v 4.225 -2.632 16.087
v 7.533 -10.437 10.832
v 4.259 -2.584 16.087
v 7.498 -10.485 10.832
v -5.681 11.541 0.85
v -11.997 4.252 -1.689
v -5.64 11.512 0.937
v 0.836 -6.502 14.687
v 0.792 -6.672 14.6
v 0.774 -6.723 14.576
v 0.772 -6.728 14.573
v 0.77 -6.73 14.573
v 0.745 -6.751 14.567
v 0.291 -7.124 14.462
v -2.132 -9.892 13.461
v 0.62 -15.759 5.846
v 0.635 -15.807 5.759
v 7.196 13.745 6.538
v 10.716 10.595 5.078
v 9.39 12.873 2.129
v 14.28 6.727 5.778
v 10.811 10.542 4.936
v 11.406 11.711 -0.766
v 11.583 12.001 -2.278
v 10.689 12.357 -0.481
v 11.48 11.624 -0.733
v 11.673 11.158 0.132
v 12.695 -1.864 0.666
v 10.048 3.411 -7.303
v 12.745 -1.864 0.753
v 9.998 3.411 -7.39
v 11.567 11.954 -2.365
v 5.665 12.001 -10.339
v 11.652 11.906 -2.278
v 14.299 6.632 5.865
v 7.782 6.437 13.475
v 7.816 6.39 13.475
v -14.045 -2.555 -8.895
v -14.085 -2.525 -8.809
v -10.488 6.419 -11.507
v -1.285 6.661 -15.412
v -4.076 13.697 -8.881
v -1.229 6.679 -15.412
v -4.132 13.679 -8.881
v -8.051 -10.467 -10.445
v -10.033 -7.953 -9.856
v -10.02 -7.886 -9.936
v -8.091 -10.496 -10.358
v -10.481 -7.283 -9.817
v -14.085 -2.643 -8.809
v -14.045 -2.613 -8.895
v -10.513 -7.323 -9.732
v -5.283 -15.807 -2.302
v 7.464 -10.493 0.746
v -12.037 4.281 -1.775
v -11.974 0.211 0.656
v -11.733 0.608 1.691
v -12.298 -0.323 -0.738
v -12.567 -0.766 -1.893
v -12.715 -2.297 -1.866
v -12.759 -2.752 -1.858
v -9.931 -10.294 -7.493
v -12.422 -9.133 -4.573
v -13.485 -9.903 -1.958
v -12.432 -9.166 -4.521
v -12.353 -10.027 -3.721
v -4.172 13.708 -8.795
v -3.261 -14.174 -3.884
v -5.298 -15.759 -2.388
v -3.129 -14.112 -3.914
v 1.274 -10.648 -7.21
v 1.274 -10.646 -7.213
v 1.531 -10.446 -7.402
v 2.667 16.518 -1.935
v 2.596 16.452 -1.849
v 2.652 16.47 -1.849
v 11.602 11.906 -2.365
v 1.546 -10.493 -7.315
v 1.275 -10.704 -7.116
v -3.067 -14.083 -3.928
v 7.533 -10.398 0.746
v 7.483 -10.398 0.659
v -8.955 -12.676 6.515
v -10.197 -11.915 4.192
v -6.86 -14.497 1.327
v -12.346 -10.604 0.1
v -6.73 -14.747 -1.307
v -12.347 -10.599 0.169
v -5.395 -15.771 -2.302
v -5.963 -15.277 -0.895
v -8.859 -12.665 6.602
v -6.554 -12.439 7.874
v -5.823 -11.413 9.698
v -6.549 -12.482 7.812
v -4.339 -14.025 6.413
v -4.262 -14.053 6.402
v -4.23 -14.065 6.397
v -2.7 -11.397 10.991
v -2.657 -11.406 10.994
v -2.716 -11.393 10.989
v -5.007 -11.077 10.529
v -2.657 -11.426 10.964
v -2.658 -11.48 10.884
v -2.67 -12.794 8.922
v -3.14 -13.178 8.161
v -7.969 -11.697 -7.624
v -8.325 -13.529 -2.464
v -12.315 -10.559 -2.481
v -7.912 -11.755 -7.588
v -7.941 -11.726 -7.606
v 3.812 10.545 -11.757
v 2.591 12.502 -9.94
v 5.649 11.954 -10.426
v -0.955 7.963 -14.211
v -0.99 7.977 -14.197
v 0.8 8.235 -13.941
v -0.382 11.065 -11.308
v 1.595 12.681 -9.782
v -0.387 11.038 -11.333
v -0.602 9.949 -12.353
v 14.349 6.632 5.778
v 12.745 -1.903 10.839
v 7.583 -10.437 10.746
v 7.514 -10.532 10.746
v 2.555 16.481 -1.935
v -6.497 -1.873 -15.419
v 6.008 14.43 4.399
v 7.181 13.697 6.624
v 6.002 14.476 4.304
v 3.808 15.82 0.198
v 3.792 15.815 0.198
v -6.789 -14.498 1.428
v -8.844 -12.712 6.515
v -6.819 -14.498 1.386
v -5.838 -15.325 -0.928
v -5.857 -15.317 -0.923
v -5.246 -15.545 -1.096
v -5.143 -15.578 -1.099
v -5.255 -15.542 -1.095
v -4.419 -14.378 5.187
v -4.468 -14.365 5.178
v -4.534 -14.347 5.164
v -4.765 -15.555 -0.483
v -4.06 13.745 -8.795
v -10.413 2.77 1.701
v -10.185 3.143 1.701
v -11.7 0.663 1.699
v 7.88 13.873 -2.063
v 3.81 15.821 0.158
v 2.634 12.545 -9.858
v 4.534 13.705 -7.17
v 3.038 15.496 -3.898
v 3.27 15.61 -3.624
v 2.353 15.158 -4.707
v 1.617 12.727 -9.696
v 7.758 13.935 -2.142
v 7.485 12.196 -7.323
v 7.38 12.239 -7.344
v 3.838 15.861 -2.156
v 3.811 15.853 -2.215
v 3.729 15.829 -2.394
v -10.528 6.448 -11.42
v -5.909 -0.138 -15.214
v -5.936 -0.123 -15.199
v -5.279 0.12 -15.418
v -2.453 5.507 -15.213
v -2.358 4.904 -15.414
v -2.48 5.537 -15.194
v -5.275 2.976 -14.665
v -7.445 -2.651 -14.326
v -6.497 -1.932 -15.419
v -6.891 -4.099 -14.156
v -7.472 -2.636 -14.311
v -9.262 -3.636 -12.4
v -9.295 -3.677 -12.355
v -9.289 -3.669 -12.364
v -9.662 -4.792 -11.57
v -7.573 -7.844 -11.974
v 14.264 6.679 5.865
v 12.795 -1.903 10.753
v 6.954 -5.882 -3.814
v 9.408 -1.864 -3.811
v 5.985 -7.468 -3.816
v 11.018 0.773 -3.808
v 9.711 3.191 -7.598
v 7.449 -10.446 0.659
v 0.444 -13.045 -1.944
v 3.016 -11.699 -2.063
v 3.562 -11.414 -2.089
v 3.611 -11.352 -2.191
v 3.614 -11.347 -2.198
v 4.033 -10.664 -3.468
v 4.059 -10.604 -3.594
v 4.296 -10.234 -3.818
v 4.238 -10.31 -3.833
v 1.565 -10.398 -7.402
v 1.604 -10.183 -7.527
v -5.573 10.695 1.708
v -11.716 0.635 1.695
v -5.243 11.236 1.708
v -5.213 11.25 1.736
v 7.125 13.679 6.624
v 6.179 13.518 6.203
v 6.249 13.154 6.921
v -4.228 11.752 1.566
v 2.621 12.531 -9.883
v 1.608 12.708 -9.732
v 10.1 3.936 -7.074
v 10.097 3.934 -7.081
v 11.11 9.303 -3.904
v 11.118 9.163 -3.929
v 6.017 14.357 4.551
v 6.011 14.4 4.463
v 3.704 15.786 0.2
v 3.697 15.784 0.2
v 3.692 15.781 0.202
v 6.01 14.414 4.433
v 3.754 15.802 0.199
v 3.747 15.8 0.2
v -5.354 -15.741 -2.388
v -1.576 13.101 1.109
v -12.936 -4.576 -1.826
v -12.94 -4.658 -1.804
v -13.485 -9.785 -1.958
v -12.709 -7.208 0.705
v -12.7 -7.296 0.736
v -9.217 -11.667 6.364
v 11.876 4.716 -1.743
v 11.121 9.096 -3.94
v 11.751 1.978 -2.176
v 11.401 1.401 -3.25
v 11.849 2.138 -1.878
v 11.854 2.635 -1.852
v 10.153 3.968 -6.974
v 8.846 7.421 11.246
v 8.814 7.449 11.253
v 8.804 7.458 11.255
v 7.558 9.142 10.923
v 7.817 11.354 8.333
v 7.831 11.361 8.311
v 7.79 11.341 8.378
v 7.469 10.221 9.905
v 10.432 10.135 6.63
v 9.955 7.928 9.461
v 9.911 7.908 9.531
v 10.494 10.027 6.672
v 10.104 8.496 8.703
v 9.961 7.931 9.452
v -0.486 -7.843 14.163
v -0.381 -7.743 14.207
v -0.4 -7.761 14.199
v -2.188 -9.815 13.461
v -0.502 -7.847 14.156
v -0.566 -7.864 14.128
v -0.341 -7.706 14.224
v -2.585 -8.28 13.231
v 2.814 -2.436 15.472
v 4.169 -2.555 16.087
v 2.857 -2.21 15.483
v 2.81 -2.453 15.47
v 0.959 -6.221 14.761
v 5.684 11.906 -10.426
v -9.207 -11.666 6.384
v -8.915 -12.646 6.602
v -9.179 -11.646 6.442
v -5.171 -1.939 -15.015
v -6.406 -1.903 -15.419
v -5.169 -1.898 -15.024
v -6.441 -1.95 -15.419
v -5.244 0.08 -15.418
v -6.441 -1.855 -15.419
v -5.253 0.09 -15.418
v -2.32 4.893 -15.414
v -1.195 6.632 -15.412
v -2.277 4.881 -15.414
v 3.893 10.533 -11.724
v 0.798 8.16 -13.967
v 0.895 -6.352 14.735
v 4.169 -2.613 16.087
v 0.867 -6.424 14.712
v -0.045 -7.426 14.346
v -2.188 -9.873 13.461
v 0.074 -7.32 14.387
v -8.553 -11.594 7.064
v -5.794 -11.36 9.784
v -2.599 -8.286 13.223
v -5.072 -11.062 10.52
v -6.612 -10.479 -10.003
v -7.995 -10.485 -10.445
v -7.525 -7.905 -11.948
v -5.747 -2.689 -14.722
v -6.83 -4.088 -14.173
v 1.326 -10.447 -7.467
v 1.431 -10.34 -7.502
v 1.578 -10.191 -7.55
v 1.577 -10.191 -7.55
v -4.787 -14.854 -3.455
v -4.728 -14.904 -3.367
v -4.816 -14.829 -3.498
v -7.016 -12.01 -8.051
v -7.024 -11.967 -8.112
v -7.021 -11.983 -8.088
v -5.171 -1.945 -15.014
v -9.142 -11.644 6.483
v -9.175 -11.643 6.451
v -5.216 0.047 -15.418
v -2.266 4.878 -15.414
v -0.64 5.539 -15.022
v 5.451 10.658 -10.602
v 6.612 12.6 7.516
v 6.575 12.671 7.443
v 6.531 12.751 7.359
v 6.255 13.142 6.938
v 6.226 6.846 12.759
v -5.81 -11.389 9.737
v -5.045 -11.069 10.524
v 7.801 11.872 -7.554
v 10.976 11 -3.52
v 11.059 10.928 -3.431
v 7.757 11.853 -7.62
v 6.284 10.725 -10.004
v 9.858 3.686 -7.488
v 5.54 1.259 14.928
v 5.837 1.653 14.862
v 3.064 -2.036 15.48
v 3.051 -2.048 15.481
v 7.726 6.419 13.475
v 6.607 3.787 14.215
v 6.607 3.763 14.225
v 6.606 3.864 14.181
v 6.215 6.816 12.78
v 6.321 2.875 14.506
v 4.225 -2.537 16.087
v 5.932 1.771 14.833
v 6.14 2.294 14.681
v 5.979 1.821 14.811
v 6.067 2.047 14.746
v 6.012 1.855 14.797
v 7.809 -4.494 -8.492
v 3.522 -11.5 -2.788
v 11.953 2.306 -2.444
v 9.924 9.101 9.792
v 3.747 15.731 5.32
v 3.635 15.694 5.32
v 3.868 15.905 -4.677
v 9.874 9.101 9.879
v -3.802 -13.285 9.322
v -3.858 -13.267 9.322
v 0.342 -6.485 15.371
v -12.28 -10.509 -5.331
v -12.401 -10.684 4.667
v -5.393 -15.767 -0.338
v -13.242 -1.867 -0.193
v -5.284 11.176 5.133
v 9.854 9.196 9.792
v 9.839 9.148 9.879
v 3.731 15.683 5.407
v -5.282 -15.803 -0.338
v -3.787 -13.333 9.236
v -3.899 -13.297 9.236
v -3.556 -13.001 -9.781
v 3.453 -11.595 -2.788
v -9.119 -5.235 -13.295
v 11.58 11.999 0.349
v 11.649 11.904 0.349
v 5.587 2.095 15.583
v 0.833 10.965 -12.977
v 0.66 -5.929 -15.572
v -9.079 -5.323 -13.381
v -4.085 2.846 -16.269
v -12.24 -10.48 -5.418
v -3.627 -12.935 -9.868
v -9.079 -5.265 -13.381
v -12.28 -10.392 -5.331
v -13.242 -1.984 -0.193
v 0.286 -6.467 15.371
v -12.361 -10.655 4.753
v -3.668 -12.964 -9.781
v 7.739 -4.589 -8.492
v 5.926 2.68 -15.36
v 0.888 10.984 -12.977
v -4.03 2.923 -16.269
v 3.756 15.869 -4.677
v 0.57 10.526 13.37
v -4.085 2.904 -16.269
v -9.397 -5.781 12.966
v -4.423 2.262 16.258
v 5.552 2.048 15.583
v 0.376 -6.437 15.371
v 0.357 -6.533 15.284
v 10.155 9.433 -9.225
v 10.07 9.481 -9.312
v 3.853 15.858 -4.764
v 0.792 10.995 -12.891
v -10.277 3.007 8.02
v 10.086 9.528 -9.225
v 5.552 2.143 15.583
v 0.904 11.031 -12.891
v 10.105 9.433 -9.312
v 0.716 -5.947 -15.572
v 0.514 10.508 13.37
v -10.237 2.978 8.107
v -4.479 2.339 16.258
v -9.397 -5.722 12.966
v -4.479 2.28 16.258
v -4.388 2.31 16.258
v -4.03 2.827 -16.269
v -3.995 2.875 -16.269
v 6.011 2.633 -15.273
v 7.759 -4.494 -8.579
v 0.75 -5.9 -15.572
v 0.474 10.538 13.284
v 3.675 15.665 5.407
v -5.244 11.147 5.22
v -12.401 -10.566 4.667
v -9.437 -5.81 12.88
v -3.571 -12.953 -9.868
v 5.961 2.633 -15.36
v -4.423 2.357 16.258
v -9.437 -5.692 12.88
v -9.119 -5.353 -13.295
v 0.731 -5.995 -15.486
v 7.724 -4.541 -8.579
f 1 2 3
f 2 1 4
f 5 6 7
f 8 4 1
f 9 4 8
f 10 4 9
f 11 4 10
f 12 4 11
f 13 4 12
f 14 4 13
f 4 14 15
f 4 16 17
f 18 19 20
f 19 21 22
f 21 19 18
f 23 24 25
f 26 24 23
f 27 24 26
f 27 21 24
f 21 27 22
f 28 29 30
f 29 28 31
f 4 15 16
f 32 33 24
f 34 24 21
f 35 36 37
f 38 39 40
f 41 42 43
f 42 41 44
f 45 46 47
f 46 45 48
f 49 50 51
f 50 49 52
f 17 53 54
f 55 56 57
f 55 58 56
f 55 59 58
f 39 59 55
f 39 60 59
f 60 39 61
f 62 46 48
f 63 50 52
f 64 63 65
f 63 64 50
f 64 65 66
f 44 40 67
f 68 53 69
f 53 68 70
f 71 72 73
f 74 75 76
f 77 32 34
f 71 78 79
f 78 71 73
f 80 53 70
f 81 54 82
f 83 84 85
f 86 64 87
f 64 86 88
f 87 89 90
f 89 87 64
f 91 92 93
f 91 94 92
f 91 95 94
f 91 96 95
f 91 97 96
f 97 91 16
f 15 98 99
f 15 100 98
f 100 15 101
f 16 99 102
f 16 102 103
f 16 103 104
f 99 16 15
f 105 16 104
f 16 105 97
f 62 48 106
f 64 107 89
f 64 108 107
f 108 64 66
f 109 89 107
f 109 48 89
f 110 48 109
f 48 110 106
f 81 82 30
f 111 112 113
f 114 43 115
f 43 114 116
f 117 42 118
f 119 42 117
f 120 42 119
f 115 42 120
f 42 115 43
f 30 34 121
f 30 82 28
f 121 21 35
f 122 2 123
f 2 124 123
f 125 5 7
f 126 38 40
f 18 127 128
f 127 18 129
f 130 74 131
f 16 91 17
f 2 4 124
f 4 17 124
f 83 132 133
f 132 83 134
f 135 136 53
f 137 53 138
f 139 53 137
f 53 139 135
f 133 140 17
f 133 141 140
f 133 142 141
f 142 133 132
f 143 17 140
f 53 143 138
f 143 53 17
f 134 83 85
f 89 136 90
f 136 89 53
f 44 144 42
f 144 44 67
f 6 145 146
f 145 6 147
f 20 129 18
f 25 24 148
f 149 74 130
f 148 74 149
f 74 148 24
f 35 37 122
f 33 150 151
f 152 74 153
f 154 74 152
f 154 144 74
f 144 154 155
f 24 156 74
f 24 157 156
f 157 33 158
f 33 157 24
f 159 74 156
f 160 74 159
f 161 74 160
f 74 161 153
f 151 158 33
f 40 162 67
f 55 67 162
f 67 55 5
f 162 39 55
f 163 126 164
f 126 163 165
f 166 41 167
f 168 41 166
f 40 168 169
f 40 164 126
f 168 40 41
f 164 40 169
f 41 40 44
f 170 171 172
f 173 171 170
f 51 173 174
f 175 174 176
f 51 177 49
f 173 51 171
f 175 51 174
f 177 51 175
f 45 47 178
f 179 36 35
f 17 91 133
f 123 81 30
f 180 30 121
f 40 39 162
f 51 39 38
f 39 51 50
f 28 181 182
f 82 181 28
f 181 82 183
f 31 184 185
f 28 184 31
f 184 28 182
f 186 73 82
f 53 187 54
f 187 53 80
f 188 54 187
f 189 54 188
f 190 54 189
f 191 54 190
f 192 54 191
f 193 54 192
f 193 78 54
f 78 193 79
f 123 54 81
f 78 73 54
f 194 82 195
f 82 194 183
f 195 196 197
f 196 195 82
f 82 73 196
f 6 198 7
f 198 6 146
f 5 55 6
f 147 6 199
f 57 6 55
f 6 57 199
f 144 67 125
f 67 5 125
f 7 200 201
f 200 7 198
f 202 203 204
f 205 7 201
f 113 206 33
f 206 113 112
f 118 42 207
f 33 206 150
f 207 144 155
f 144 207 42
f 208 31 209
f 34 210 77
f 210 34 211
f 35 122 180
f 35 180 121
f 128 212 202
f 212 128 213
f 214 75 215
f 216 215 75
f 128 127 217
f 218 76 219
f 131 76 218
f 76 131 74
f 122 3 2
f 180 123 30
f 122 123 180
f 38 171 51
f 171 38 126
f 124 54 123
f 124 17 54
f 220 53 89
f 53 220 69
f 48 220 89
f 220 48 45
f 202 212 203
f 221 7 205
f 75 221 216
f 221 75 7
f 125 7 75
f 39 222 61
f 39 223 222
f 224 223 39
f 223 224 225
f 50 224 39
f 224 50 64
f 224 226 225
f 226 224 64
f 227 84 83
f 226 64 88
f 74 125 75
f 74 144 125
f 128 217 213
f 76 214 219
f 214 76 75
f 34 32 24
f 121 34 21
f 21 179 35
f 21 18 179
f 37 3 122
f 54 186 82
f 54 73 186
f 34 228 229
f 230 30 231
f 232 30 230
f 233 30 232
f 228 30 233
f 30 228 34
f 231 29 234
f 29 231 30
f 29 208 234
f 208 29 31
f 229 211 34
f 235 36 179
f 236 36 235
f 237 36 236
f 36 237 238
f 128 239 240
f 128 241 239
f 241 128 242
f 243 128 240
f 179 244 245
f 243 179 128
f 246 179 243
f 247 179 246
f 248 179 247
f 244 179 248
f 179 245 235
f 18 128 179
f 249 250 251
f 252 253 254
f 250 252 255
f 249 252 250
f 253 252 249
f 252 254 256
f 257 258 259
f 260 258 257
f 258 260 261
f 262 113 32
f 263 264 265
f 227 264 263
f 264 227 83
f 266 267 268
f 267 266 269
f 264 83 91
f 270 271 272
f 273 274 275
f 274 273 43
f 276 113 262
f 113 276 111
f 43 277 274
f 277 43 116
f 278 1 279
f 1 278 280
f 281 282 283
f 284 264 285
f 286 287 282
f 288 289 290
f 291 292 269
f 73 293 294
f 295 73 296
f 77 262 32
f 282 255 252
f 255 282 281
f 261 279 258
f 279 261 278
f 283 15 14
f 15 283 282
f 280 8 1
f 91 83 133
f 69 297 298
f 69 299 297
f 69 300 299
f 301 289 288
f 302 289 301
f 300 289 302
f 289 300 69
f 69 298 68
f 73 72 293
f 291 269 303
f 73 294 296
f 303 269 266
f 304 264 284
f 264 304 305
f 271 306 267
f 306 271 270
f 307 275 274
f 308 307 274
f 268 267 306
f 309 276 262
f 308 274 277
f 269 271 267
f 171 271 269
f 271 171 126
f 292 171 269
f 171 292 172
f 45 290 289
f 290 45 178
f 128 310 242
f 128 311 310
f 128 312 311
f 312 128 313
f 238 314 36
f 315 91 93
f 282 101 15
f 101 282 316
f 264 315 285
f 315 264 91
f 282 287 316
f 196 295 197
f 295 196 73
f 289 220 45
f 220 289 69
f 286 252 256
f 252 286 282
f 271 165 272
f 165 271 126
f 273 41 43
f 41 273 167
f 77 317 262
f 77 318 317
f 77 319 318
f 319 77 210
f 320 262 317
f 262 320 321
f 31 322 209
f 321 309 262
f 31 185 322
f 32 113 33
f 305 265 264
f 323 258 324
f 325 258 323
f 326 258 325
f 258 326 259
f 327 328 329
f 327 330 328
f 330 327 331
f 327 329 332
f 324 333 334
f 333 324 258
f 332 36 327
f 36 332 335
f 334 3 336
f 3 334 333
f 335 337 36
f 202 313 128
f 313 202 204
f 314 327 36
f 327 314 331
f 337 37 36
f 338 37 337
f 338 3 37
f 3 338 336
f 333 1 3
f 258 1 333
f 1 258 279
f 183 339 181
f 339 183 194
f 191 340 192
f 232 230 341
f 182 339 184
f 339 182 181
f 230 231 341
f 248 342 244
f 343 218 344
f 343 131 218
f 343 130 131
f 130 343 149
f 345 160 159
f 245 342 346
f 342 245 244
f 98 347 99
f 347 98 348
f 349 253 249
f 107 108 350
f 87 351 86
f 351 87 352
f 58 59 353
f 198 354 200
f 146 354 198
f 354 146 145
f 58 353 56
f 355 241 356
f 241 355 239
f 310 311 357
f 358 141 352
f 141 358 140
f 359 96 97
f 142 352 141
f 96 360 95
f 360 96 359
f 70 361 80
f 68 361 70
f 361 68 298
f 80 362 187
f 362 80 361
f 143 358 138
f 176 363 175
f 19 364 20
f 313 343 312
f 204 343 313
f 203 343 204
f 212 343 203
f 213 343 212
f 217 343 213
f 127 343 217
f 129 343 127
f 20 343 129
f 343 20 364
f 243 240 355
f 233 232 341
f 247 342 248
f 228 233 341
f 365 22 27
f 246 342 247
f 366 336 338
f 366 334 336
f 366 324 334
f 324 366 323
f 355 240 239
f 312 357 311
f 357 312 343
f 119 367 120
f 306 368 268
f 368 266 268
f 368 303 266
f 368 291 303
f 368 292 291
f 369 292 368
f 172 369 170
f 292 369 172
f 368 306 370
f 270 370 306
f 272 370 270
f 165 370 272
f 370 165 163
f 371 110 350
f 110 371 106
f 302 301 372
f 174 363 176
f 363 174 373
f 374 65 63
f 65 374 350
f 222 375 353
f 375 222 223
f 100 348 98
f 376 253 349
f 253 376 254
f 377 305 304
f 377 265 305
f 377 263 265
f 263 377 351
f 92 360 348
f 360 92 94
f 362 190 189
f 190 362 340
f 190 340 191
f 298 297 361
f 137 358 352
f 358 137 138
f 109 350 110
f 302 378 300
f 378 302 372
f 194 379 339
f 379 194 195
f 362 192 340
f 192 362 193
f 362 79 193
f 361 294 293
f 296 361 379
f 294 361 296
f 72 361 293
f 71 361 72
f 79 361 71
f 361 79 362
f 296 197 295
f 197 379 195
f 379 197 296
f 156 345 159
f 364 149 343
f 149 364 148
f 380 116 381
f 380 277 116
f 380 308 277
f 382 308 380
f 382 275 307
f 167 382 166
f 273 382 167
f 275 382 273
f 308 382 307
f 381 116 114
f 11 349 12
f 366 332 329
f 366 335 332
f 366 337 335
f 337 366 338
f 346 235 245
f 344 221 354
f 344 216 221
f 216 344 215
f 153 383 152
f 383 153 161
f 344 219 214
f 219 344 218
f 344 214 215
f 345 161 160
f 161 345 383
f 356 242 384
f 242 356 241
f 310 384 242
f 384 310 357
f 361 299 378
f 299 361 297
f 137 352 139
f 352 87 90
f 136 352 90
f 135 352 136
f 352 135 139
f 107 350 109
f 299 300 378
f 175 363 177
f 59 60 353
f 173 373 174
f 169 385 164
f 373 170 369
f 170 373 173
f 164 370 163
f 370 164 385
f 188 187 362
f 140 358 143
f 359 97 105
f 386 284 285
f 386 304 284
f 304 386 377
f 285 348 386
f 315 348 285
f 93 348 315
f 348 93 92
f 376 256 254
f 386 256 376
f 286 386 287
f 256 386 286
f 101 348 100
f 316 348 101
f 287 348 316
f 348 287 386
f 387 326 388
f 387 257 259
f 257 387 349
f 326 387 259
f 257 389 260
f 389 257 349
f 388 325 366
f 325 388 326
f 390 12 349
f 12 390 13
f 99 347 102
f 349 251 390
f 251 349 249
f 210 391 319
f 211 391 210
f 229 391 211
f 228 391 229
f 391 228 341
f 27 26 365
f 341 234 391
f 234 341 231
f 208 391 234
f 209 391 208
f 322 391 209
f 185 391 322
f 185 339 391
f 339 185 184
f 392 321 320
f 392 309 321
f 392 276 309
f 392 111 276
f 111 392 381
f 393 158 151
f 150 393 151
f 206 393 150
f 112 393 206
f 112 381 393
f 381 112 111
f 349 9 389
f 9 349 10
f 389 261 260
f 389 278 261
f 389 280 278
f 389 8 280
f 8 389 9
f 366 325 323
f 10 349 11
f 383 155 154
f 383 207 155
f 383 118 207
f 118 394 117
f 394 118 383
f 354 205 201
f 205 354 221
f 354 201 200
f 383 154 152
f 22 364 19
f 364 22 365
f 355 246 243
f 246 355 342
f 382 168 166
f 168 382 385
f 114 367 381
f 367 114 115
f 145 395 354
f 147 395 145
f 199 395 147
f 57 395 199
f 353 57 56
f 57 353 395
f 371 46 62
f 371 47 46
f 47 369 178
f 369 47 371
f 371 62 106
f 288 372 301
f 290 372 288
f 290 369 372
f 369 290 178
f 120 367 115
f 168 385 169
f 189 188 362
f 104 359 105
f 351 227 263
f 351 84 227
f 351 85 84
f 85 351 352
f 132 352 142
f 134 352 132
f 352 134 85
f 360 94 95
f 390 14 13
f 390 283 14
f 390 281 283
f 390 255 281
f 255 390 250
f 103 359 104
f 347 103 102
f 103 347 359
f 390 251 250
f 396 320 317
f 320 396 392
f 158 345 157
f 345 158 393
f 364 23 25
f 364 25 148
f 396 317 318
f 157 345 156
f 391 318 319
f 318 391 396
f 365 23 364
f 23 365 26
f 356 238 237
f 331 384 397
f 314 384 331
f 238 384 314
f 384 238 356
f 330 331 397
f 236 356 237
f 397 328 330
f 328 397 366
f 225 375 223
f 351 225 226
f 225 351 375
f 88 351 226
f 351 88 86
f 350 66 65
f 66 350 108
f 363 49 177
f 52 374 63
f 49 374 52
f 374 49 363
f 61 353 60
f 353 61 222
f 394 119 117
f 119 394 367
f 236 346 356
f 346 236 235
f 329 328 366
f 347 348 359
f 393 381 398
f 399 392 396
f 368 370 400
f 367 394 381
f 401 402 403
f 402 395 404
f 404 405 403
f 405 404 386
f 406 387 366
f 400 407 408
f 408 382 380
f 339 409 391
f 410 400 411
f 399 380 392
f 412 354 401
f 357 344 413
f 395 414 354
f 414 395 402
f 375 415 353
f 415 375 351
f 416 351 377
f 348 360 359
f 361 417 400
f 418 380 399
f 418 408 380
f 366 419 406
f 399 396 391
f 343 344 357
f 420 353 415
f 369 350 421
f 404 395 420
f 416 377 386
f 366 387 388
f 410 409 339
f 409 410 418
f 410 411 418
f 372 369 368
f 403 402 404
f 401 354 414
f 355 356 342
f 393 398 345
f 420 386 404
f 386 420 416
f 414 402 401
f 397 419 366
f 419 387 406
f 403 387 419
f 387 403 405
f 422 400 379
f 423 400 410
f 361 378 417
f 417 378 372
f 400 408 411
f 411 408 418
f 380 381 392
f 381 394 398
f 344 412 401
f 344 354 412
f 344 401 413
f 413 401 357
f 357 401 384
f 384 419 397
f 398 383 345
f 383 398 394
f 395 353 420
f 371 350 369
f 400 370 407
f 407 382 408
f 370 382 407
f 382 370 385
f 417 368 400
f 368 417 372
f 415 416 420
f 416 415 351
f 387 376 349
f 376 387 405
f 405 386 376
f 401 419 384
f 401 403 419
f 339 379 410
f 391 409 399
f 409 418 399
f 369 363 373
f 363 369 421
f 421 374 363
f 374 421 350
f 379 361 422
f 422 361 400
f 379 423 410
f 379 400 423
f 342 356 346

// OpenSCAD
// Auto-generated OpenSCAD file

    inner_points = 10*[[0.0700122788145141, -0.5899867463576787, -1.5485662456686995], [0.5536702496302224, 0.20951801959251765, 1.5496595452459865], [0.3837392237867054, 1.5810057288487958, -0.4677500511375285], [-1.2320578889140816, -1.0625183532543938, 0.46665675156024133], [0.5910683620661039, 0.2632714000188084, -1.527327277975484], [-0.3586733514761777, -1.290553069521443, -0.9780967397079723], [0.9823558799209142, 0.910084342756282, 0.9791900392852595], [0.03261416637863256, -0.6437401267839695, 1.5284205775527713], [0.08730081805517803, 1.0936030862461223, -1.2890678553955885], [-1.2199065055817309, -1.0450528212147916, -0.5331168723535343], [0.3715878404543547, 1.5635401968091933, 0.5320235727762472], [-0.9356194831825542, -0.5751157106517207, 1.2879745558183013], [1.0054691845213792, 0.9433057588699332, -0.9224924004011736], [-0.5312451885235989, -1.5708350453974695, -0.033818721824939835], [1.1549277169683354, 1.1903663186323088, 0.034912021402226934], [-0.3817866560766427, -1.3237744856350941, 0.9235856999784607], [-0.40449798132161563, 0.2875035122688776, -1.6182143543367875], [-0.903806748608131, -0.5293903541404417, -1.3294667726436182], [0.05548808348075484, 1.0478777297348434, 1.328373473066331], [-0.4438206838057605, 0.23098386332552417, 1.6171210547595003], [1.185256496068756, 0.23064800053697915, -0.2444102209461938], [-0.9999741793416539, 0.3230904868027798, -0.8156299881576774], [0.7708556736134807, -0.4493863583141455, -0.8492450985205042], [1.0126846590213348, -0.04963397533904733, 0.6998677969368388], [-0.5081753799648603, 1.1291900607800247, -0.4864834892164787], [-1.3160739363152536, -0.19257198027157013, -0.019280087867593804], [0.3421700433227889, -1.1499526814779097, -0.27877559255977724], [0.49162857576974506, -0.9028921217155343, 0.6786288292436233], [-0.5203267632972108, 1.1117245287404225, 0.5132901346972969], [-1.0196355305837264, 0.2948306623311031, 0.8020377163904663]];

    outer_points = 10*[[-0.6456324675968002, -0.1902777633799494, -1.5332707609435225], [1.2694564683720715, -0.1902777633799494, 1.0752863732456437], [0.2636354735959513, 1.6422548517857285, -0.19354967234384785], [-0.8874594743712225, -1.26169932502583, 0.6515340600417266], [-0.12445942987975245, 0.663172955851532, -1.532539597451722], [-0.8010560642832288, -1.0437284826114308, -1.0358118426032024], [1.4248800650585003, 0.663172955851532, 0.5778274549053235], [0.7482834306550238, -1.0437284826114308, 1.074555209753843], [-0.40911482956083434, 1.3649519033432802, -0.8794870633552854], [-1.3403702046054238, -0.9843963765833815, -0.1957999621855453], [0.7165462038301526, 1.3649519033432802, 0.6537843498834242], [-0.214709171214437, -0.9843963765833815, 1.3374714510531642], [0.5633926624800331, 1.1906345080596314, -1.0338976317303359], [-0.5313636886585785, -1.57119003481953, -0.23017524123000543], [1.1551876894338498, 1.1906345080596314, -0.22780914646787348], [0.06043133829523831, -1.57119003481953, 0.575913244032457], [-1.0447369557761081, 0.6389633591403906, -1.1420230539389458], [-1.4004448568371106, -0.2584078323804918, -0.8808778189619931], [0.7766208560618393, 0.6389633591403906, 1.338862206659872], [0.42091295500083675, -0.2584078323804918, 1.6000074416368246], [0.9947883785101106, 0.34107898385562474, -0.7303302627900091], [-1.1956160829923428, 0.4222705456034471, -0.17751296403220418], [0.3069362861503253, -0.18638256835247435, -1.2289722285113953], [1.2644807541347611, -0.18638256835247435, 0.07530633858318769], [-0.5599939567770693, 1.1482590898063367, 0.08502302655145622], [-1.1355414307606564, -0.3037179985994425, 0.5075648927442435], [0.1515126894638965, -1.039833287583956, -0.7315133101710751], [0.7433077164177133, -1.039833287583956, 0.07457517509138728], [-0.10708322654286795, 0.8709561413638883, 0.9323570487787283], [-0.4627911276038704, -0.02641505015699408, 1.1935022837556808]];

    // Convex hull for inner set (I)
    module inner_hull() {
        hull() {
            for (p = inner_points) {
                translate(p) sphere(r=0.1);
            }
        }
    }

    // Convex hull for outer set (O) minus inner hull (O \ I)
    module outer_minus_inner() {
        difference() {
            hull() {
                for (p = outer_points) {
                    translate(p) sphere(r=0.1);
                }
            }
            inner_hull(); // Subtract inner hull
        }
    }

    // Convex hull for outer set (O) minus all translated inner hulls
    module outer_minus_AllTranslationInner() {
        difference() {
            hull() {
                for (p = outer_points) {
                    translate(p) sphere(r=0.1);
                }
            }
            hull() {
                translate([0,0,50]) inner_hull();
                translate([0,0,-50]) inner_hull();
            }; // Subtract translated inner hulls
        }
    }

    // Difference between outer_minus_inner and outer_minus_AllTranslationInner
    module outer_minus_inner_diff() {
        difference() {
            // Outer minus inner
            difference() {
                hull() {
                    for (p = outer_points) {
                        translate(p) sphere(r=0.1);
                    }
                }
                inner_hull();
            }

            // Subtract Outer minus AllTranslationInner
            difference() {
                hull() {
                    for (p = outer_points) {
                        translate(p) sphere(r=0.1);
                    }
                }
                hull() {
                    translate([0,0,50]) inner_hull();
                    translate([0,0,-50]) inner_hull();
                };
            }
        }
    }

    // Rendering all with colors applied
    color([1, 0, 0, 0.5]) inner_hull(); // Transparent red
    color([0, 1, 0, 1]) outer_minus_AllTranslationInner(); // Opaque green
    color([1, 1, 0, 1]) outer_minus_inner_diff(); // Opaque yellow
    
